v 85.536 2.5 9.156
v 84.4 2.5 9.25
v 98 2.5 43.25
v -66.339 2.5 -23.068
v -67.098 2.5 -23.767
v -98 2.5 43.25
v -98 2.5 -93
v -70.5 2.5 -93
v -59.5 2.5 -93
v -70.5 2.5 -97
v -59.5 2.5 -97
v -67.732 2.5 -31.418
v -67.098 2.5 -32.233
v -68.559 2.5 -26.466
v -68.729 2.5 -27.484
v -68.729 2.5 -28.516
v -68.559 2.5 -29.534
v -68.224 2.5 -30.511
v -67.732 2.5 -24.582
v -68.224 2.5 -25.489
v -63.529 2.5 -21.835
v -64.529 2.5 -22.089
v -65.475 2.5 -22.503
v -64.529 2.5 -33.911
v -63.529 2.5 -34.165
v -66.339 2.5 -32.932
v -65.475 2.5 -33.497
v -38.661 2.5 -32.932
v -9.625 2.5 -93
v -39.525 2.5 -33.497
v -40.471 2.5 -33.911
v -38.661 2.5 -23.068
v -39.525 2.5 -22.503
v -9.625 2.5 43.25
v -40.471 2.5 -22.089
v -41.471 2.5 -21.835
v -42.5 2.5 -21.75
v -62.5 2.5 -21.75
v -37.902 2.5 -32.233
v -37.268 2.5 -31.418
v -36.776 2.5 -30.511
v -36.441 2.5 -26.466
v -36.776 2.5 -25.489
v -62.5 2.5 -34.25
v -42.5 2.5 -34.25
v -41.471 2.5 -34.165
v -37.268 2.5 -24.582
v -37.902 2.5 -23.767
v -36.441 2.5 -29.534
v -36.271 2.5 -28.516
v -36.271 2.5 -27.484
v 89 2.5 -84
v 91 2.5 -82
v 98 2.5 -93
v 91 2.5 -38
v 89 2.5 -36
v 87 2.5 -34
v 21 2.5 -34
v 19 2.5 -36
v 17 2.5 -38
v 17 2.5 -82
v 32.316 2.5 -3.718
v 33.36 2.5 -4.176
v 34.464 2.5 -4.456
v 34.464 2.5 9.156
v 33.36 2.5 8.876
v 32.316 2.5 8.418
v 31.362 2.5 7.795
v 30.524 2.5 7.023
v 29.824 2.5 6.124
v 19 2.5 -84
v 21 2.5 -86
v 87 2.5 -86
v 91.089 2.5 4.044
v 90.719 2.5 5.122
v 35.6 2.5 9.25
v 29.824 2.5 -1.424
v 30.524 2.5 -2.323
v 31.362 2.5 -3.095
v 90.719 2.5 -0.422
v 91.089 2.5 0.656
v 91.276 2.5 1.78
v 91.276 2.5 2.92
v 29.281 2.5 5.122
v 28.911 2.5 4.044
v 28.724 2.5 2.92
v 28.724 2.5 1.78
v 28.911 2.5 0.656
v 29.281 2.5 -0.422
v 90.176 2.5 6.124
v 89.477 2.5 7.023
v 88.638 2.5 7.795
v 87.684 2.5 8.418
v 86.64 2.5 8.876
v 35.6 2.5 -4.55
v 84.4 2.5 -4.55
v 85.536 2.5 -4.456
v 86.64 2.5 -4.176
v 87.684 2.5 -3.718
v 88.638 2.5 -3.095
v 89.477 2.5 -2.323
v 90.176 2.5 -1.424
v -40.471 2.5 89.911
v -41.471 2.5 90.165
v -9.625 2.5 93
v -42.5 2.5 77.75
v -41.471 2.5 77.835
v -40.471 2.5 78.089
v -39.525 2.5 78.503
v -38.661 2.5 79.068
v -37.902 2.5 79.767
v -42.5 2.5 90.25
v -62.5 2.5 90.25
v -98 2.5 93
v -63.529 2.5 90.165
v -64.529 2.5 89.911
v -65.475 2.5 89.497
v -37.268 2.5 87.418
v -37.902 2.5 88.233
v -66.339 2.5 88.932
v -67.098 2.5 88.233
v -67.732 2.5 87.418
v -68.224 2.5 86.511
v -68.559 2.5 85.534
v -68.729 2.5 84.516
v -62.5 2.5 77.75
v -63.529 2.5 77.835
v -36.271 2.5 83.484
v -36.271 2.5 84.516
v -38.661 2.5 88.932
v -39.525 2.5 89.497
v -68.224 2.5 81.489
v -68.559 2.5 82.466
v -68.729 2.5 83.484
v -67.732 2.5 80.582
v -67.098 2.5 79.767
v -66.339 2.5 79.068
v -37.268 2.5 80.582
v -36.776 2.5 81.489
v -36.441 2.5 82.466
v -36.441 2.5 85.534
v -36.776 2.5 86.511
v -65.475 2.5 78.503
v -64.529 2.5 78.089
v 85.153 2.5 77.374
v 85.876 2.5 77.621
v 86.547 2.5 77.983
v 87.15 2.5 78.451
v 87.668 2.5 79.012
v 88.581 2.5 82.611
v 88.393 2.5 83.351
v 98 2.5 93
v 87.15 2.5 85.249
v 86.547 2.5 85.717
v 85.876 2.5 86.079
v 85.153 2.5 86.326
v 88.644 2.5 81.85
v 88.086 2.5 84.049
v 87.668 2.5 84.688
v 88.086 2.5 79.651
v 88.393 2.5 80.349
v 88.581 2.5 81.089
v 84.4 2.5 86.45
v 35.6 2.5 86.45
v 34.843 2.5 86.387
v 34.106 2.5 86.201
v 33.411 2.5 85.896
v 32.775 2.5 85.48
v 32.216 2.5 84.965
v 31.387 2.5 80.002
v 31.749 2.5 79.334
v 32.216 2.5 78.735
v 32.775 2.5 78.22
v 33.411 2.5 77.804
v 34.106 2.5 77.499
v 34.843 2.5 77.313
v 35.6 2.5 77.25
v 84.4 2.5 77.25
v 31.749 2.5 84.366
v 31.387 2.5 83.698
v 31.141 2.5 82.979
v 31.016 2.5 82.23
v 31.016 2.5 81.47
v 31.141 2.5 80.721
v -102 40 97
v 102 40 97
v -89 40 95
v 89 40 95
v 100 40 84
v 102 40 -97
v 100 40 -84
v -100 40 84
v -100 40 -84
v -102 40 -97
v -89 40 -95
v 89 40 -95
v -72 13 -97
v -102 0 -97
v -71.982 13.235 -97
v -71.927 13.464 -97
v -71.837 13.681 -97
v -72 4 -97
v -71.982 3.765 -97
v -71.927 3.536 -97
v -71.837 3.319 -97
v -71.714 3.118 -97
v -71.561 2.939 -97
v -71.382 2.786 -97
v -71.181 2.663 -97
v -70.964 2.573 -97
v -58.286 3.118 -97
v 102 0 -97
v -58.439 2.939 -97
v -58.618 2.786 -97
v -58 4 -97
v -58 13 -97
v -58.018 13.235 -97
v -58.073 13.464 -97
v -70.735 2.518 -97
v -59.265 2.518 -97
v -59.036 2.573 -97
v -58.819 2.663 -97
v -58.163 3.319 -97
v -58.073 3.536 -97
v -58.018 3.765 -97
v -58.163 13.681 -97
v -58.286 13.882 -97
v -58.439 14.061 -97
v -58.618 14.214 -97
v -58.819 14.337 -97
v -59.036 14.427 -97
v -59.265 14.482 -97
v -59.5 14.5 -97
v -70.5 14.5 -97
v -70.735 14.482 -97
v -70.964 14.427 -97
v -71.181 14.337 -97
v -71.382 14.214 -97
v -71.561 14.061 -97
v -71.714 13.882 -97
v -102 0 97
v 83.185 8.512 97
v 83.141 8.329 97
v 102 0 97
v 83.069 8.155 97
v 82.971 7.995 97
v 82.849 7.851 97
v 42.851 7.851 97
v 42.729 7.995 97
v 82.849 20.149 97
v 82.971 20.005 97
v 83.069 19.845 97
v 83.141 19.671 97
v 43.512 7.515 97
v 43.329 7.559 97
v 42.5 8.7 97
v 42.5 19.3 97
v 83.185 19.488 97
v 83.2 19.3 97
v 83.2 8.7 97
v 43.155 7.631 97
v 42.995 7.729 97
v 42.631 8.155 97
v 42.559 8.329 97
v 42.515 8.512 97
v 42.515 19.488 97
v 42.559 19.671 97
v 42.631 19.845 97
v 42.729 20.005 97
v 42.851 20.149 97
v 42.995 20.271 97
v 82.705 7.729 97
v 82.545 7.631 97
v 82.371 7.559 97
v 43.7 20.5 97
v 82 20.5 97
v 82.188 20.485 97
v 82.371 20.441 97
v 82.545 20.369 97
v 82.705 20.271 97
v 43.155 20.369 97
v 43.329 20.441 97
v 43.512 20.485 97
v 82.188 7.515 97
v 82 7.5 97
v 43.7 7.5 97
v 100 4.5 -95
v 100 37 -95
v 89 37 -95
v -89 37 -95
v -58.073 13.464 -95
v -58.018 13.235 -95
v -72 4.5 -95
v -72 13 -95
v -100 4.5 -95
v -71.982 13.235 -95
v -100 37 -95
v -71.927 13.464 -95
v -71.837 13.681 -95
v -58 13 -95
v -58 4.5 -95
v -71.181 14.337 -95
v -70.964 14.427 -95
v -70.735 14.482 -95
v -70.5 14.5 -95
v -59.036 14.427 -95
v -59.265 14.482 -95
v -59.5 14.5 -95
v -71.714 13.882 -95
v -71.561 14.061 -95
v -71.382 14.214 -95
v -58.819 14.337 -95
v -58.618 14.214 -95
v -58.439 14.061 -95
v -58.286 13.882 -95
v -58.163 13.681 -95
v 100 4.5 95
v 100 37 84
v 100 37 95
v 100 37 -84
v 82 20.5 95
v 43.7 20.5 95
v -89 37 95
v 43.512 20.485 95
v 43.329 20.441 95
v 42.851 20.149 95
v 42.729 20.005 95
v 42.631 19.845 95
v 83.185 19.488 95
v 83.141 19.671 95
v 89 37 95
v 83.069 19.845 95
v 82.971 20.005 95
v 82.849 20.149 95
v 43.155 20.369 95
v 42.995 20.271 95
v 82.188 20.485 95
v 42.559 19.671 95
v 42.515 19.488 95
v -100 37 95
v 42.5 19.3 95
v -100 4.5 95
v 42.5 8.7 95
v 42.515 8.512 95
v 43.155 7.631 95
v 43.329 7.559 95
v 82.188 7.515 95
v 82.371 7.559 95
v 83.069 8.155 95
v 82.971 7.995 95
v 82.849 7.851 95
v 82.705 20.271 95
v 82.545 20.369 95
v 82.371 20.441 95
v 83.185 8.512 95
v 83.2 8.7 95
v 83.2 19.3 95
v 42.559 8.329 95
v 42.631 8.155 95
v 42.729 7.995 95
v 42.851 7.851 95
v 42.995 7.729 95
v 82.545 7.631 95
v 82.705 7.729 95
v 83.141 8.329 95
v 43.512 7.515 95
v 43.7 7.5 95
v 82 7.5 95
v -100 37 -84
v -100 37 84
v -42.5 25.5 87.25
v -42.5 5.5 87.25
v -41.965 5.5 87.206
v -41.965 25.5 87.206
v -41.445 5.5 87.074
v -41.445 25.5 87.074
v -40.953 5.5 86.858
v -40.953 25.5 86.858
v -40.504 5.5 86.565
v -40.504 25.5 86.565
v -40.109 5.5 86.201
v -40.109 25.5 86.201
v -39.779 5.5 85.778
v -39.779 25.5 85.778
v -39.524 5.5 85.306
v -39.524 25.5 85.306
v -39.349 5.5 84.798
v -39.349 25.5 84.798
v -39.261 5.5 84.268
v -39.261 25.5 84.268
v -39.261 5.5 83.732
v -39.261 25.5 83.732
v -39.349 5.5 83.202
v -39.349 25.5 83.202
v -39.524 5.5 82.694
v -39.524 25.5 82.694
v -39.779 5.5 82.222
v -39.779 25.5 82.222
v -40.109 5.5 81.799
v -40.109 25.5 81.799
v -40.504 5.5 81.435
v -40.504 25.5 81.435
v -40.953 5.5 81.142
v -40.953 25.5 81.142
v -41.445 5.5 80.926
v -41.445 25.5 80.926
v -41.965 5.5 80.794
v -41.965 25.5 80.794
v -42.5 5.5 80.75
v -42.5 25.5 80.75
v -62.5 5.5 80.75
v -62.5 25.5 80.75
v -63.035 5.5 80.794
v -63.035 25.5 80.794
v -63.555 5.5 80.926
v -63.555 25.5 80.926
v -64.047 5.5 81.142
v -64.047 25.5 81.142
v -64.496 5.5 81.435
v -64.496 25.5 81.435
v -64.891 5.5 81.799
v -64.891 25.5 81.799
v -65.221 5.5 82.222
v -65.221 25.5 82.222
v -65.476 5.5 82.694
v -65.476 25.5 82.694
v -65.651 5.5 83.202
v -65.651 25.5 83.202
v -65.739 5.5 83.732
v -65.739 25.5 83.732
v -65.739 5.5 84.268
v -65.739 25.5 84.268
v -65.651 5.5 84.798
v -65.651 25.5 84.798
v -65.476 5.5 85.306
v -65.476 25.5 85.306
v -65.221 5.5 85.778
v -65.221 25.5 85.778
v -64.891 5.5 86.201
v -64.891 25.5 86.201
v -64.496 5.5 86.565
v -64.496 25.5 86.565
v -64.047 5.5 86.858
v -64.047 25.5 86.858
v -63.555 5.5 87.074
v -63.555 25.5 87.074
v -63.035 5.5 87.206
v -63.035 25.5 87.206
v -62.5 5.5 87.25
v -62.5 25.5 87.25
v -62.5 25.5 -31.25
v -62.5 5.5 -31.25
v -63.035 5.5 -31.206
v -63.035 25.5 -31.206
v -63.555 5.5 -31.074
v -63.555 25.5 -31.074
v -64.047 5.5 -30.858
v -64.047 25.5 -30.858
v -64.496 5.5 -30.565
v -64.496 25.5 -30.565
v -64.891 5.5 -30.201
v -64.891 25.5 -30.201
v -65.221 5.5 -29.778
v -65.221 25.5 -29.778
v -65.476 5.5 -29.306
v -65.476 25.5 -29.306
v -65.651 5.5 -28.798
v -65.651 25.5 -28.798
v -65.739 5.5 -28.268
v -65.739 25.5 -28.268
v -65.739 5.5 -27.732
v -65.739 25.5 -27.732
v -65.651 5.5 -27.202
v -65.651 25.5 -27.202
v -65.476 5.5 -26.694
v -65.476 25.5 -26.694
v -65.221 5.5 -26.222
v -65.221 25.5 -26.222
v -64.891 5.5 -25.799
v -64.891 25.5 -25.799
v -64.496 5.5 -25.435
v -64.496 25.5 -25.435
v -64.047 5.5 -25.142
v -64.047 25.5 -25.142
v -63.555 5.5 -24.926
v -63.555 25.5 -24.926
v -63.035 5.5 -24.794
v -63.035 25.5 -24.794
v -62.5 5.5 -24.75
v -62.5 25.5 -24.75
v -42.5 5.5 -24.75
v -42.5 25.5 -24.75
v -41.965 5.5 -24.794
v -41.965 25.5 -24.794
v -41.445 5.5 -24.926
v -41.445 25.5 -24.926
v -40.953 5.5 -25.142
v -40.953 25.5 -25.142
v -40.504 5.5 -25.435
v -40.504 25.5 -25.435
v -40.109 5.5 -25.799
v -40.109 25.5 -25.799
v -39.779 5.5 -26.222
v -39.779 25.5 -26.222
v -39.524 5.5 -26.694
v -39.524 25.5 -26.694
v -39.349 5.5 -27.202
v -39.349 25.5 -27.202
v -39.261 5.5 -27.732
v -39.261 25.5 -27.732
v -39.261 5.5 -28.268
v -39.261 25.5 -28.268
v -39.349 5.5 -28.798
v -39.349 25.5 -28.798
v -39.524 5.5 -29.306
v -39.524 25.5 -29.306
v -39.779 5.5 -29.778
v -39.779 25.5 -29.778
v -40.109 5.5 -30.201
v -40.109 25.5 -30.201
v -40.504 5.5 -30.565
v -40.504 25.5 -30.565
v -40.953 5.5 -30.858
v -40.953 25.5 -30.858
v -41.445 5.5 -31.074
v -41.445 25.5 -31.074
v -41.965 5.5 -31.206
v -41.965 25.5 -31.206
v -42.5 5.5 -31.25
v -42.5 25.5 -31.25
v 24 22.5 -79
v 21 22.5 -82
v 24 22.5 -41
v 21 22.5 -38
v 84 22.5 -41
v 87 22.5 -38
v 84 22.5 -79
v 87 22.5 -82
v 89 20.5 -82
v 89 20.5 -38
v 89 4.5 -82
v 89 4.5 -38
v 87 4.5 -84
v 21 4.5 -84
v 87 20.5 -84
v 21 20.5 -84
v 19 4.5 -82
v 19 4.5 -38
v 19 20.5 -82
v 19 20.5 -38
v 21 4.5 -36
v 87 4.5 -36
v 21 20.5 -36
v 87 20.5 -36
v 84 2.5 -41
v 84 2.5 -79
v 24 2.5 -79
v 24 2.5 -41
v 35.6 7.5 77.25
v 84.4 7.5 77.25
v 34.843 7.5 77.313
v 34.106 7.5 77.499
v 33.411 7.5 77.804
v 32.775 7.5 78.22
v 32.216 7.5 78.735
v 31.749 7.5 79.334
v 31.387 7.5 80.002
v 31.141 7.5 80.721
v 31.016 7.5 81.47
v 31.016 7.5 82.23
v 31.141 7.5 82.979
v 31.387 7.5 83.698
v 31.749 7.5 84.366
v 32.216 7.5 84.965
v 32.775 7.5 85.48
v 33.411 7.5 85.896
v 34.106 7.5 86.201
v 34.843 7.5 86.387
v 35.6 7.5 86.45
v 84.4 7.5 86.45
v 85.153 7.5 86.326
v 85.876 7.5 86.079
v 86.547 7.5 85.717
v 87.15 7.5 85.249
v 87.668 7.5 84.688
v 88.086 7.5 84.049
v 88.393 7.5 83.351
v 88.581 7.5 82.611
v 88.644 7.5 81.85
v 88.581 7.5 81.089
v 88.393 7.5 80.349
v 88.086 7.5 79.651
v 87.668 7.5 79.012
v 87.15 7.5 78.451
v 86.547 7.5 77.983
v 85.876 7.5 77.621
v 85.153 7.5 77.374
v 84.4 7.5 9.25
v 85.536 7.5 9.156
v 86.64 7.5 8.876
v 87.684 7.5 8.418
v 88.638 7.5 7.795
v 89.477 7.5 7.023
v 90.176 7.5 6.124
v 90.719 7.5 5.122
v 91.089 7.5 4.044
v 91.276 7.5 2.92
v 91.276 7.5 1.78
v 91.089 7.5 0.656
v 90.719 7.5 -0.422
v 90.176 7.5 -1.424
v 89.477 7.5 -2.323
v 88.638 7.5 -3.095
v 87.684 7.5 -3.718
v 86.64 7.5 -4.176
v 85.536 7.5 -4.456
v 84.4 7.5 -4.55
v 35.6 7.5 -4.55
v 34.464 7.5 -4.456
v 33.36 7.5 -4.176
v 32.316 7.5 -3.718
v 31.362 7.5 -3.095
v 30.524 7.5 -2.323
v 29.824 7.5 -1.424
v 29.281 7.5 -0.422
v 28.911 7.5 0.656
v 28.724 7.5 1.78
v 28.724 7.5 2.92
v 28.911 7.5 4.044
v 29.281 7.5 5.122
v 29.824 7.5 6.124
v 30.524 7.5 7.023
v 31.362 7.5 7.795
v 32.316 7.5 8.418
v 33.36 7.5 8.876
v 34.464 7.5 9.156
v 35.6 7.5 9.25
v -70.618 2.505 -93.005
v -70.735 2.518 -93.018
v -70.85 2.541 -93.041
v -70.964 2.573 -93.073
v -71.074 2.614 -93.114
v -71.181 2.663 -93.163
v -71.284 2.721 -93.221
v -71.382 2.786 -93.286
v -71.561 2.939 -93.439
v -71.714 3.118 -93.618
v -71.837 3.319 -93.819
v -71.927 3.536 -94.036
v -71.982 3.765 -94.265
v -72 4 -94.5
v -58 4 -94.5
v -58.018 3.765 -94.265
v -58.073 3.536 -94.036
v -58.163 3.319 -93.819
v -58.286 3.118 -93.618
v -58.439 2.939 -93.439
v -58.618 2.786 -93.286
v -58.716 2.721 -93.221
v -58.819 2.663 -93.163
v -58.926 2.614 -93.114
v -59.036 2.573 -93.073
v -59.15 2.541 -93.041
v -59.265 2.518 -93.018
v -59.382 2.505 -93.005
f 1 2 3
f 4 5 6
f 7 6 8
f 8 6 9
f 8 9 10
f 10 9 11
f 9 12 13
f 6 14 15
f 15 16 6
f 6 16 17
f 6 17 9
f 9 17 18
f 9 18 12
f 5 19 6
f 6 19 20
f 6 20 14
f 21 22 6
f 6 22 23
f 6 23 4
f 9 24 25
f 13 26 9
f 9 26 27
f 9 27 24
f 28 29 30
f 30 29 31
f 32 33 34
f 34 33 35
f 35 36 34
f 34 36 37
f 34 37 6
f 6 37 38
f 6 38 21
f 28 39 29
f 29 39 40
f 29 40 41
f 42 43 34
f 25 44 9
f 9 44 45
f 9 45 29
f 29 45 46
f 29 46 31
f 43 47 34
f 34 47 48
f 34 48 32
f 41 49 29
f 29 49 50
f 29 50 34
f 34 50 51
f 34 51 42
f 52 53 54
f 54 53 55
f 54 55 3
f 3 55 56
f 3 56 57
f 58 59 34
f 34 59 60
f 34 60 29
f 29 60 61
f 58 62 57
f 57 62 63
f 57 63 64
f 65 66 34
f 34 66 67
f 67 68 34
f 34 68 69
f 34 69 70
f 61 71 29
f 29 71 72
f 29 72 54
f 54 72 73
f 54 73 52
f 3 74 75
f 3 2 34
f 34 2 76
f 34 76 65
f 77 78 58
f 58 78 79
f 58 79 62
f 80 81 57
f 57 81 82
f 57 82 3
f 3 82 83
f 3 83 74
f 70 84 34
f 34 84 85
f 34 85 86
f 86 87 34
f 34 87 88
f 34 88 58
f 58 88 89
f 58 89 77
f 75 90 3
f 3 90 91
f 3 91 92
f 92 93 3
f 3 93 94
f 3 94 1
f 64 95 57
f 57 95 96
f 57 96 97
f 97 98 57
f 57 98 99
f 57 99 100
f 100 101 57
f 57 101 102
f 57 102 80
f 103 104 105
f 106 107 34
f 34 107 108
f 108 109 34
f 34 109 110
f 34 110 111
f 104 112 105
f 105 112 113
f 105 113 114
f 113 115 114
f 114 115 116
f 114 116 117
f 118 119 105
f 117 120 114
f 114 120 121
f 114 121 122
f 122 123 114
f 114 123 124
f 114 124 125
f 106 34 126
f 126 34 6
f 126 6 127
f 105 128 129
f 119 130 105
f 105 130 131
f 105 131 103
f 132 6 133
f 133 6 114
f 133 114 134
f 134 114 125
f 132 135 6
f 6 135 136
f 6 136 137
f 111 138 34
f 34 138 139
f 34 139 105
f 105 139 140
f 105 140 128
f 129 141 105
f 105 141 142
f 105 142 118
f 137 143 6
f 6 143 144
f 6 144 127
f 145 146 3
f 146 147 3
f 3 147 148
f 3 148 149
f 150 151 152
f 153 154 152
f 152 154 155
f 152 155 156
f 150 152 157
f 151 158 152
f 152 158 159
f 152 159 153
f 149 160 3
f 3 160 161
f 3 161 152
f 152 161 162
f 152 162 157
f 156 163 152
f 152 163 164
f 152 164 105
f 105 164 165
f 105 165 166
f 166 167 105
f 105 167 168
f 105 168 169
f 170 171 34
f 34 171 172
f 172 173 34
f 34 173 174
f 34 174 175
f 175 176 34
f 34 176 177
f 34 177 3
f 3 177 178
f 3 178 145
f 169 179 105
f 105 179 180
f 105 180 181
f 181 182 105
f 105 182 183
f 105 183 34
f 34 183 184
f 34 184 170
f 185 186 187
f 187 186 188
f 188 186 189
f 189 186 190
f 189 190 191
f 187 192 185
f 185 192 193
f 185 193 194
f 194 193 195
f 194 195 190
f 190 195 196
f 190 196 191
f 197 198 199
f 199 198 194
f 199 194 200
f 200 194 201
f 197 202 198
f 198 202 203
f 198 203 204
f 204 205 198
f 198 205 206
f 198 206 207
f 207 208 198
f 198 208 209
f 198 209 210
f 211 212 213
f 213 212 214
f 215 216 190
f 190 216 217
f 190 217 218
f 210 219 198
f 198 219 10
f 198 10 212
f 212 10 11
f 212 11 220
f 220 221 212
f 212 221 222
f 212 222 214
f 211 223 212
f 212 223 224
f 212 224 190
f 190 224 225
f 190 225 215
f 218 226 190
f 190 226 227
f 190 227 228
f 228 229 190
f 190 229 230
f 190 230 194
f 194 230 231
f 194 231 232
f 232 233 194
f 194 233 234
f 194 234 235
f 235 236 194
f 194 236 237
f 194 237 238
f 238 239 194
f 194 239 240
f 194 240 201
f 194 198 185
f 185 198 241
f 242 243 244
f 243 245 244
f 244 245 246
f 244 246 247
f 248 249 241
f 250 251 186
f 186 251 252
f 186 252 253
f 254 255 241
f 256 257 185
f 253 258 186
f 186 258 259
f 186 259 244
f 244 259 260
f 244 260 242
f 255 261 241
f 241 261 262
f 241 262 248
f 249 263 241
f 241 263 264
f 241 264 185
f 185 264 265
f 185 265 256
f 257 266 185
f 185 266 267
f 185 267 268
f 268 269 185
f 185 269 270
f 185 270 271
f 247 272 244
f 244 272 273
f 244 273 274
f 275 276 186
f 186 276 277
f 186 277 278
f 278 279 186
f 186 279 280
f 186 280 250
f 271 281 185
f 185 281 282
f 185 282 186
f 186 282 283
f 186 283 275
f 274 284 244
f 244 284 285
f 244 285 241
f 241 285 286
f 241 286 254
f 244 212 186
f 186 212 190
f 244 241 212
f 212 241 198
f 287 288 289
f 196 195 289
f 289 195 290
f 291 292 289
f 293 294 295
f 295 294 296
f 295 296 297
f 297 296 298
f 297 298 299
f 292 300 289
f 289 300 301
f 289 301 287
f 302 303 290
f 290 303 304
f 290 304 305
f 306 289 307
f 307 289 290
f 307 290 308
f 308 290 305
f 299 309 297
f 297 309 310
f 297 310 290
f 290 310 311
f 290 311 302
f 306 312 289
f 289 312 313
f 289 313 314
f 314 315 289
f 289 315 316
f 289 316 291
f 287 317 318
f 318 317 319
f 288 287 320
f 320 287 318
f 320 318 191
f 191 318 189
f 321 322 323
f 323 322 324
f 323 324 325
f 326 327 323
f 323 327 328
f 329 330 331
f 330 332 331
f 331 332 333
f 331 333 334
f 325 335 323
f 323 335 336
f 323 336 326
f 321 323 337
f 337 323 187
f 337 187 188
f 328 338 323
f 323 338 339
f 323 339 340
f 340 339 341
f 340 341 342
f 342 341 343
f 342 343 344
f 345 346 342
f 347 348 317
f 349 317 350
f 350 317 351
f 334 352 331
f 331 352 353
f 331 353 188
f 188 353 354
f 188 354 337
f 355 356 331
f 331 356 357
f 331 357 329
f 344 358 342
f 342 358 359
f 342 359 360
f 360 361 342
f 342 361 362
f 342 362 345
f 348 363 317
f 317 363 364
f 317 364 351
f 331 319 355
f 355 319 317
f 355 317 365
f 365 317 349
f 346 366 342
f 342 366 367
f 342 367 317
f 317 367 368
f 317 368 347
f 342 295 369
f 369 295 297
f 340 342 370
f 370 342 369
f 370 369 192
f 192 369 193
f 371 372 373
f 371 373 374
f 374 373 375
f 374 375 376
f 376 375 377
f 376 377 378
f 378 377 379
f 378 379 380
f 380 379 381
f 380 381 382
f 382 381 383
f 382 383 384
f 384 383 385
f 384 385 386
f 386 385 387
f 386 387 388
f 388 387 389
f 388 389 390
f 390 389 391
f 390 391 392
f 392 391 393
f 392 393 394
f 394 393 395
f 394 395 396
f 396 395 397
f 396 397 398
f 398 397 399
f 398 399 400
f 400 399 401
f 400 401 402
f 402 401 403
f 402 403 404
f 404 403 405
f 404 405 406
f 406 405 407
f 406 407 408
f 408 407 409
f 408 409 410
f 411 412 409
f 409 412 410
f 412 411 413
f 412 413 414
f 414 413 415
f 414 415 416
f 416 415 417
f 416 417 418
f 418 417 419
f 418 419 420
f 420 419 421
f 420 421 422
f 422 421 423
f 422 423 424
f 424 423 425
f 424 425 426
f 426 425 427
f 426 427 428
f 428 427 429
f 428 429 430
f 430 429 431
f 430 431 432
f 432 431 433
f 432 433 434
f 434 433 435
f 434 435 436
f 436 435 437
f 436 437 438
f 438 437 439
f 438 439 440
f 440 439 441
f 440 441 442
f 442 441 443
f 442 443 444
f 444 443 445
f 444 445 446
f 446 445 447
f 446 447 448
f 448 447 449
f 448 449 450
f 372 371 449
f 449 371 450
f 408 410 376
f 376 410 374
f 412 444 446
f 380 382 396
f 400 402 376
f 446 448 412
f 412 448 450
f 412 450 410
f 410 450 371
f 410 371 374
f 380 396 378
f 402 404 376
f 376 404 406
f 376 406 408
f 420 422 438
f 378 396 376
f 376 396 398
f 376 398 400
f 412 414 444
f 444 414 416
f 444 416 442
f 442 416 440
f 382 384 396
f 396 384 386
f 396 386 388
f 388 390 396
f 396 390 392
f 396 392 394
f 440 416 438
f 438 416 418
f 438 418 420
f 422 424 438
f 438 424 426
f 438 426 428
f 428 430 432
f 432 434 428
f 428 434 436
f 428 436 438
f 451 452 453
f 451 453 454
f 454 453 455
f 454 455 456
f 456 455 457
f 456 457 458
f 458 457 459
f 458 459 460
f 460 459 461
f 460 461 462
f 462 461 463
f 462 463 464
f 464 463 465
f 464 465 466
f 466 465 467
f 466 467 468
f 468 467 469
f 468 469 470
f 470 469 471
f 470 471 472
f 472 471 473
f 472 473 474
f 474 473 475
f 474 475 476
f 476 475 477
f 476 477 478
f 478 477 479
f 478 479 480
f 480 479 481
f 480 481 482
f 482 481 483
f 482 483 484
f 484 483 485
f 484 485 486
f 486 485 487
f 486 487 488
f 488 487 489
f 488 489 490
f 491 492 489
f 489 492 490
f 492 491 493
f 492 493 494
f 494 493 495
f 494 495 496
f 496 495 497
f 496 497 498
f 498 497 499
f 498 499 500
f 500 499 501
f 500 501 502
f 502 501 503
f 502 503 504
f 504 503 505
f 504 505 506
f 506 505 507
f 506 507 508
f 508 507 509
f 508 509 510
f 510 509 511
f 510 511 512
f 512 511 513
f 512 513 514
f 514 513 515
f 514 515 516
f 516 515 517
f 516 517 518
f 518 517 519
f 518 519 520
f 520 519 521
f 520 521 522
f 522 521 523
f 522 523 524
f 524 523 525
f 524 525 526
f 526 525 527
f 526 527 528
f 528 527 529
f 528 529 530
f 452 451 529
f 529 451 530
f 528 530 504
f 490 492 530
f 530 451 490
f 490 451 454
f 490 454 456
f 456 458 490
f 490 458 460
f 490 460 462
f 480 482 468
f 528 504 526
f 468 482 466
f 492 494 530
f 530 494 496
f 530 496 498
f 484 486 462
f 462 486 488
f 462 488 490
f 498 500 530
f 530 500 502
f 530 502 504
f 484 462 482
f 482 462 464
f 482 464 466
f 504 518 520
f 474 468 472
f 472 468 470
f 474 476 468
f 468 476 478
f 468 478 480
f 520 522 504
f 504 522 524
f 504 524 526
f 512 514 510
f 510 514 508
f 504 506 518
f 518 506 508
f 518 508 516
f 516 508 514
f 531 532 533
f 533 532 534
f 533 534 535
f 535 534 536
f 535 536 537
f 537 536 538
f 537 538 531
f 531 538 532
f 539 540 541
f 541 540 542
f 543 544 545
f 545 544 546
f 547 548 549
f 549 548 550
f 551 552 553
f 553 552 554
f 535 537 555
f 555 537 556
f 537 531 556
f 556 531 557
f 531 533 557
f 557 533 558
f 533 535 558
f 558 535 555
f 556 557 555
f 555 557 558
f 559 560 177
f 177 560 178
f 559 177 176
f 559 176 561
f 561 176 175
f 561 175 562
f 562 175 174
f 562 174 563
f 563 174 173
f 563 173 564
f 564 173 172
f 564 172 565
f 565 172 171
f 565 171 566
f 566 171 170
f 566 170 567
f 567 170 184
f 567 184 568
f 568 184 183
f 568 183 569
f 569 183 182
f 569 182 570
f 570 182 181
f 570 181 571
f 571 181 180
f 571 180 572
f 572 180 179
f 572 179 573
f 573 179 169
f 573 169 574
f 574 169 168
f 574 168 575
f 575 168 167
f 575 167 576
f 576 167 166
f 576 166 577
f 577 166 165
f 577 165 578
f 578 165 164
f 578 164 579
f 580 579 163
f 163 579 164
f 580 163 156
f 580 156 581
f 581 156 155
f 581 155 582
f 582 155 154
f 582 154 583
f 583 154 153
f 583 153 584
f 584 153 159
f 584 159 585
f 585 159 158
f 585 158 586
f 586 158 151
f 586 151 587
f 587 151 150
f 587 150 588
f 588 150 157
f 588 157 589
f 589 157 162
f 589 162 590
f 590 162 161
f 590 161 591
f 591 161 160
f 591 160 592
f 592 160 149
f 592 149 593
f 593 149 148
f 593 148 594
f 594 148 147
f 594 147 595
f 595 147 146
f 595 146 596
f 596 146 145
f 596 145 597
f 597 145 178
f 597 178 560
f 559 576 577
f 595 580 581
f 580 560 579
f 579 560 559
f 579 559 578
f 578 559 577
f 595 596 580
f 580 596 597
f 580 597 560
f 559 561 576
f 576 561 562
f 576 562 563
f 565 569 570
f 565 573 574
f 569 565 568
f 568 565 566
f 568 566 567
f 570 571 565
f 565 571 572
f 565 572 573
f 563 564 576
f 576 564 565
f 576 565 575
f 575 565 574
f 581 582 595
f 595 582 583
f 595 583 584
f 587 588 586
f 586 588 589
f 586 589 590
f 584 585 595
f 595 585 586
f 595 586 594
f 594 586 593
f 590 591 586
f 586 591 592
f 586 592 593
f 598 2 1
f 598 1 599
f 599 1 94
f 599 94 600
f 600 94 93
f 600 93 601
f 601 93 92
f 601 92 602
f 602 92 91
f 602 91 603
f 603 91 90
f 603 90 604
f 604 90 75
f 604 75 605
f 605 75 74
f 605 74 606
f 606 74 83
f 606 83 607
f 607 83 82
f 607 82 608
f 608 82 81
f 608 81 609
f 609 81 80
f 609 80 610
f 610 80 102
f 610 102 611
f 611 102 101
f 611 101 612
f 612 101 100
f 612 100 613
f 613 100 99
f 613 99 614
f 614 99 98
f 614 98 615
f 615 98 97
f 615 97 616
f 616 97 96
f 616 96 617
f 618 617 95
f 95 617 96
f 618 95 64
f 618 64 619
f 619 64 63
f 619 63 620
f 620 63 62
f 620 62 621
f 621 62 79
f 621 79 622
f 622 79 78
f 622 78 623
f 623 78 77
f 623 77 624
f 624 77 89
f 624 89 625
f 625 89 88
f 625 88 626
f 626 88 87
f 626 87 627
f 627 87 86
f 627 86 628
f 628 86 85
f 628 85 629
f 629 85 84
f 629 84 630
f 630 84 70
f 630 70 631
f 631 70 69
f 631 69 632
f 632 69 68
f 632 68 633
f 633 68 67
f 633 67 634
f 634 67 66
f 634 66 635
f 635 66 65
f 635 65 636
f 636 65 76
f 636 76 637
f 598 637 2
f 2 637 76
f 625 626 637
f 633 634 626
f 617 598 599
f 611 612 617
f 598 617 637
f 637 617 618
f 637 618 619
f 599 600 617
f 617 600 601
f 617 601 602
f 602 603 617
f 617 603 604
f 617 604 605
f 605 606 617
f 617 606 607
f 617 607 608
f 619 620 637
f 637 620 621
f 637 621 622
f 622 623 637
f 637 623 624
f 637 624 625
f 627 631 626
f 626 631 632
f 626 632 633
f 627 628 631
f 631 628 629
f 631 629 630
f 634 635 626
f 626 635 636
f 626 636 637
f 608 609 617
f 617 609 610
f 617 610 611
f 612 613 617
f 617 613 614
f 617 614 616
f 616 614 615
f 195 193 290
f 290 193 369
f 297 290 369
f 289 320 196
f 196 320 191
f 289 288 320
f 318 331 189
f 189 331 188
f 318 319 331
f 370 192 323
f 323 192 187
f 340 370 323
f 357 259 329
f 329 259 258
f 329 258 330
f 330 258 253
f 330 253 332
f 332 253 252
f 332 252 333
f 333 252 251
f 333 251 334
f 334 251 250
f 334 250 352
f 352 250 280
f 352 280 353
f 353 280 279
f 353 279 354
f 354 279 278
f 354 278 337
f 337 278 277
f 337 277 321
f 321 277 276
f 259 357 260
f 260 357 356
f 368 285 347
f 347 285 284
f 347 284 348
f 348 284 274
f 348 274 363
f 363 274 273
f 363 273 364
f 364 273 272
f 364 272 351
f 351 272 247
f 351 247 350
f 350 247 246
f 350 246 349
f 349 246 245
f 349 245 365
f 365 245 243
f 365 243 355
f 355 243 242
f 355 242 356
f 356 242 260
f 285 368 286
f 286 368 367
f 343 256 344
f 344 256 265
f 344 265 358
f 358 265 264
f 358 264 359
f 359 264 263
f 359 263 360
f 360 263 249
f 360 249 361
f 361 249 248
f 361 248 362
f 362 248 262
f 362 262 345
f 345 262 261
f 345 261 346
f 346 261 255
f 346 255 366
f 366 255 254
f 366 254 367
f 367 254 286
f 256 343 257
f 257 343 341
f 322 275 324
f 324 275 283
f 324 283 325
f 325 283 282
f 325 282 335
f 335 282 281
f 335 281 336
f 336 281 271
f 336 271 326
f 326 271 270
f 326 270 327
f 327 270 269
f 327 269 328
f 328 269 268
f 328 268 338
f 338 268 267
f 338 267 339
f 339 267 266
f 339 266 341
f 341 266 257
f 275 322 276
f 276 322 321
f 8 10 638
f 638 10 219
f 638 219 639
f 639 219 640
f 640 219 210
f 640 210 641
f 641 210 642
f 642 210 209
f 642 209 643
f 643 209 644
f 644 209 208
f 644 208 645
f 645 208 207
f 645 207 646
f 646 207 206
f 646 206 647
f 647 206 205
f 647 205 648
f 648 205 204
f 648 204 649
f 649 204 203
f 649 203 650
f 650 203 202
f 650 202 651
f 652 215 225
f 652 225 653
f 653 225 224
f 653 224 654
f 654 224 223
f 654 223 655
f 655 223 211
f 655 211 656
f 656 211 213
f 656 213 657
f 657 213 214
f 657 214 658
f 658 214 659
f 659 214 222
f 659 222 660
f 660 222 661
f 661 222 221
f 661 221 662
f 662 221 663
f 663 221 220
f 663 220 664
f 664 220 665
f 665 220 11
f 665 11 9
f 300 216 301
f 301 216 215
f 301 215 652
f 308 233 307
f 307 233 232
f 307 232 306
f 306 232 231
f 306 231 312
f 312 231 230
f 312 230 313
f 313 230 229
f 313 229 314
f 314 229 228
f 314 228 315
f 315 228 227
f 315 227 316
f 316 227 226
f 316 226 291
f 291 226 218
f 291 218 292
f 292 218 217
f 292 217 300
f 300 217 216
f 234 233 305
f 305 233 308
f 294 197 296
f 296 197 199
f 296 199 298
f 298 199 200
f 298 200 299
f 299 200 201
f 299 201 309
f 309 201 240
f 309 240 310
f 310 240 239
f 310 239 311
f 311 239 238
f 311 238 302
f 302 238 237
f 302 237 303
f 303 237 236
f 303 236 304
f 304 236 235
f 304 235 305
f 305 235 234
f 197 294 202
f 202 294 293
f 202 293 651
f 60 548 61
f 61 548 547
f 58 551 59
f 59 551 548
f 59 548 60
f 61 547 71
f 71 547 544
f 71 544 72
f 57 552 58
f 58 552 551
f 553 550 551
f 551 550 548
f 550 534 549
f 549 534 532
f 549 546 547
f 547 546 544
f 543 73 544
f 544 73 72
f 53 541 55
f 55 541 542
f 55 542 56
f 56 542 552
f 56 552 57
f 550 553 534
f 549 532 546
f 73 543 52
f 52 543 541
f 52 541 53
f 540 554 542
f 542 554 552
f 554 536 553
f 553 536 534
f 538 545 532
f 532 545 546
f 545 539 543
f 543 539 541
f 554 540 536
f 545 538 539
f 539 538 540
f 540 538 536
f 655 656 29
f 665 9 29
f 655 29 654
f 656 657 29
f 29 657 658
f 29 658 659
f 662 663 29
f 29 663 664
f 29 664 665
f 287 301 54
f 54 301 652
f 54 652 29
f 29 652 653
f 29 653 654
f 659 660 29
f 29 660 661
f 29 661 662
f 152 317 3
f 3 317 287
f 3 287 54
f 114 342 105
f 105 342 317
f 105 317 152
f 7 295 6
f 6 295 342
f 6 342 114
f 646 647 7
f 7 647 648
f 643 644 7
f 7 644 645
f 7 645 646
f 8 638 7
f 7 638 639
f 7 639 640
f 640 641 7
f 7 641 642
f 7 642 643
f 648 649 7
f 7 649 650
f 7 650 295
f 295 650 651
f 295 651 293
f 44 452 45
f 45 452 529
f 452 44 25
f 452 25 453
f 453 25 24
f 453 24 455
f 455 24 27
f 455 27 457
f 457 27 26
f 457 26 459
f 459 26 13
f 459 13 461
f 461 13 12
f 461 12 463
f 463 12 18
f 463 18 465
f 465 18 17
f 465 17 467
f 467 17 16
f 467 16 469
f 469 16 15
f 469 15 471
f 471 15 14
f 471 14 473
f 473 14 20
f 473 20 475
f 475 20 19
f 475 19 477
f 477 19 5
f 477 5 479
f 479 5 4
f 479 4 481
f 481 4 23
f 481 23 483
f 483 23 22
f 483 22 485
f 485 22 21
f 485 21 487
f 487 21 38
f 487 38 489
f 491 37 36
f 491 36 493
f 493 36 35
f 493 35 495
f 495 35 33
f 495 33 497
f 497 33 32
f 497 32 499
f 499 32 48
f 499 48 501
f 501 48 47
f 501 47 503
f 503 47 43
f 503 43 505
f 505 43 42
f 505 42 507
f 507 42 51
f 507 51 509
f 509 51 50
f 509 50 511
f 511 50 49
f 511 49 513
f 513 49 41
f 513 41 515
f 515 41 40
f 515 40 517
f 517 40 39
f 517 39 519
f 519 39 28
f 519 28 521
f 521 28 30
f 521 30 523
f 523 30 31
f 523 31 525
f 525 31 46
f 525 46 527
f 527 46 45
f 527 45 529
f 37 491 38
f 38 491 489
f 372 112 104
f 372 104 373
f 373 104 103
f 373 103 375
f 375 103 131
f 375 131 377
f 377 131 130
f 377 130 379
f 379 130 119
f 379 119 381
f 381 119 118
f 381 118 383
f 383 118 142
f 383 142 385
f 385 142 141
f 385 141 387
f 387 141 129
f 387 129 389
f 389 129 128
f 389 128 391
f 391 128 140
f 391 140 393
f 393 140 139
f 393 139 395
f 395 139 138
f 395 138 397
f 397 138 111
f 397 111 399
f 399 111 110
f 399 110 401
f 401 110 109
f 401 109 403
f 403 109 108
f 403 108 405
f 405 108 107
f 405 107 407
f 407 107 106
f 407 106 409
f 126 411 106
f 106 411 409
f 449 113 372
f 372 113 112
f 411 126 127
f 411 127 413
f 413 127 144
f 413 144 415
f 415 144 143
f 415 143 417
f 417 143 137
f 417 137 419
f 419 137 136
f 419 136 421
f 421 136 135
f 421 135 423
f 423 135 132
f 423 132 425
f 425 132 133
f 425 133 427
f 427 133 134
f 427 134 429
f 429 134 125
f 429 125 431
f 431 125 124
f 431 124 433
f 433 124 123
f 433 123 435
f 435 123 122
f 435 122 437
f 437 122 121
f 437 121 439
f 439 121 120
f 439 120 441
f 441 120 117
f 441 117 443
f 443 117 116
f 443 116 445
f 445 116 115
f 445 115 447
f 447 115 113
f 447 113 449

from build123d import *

# Parameters (mm, degrees)
IZIM1_W                     = 204
IZIM1_H                     = 194
Y_KSEKLIK_EKSTR_ZYON2_DEPTH = 40
IZIM3_W                     = 200
IZIM3_H                     = 190
KES_EKSTR_ZYON2_DEPTH       = 37.5
Y_KSEKLIK_EKSTR_ZYON3_DEPTH = 23
IZIM6_W                     = 70
IZIM6_H                     = 48
IZIM6_W_2                   = 60
IZIM6_H_2                   = 38
Y_KSEKLIK_EKSTR_ZYON4_DEPTH = 20
Y_KSEKLIK_EKSTR_ZYON7_DEPTH = 5
Y_KSEKLIK_EKSTR_ZYON8_DEPTH = 3
KES_EKSTR_ZYON5_DEPTH       = 3
KES_EKSTR_ZYON7_DEPTH       = 3
PAH1_SIZE                   = 2
PAH2_SIZE                   = 3


with BuildPart() as part:
    # Çizim1 → Yükseklik-Ekstrüzyon2 (new body)
    with BuildSketch(Plane(origin=(0, 0, 0), x_dir=(1, 0, 0), z_dir=(0, 1, 0))):
        Rectangle(IZIM1_W, IZIM1_H)
    extrude(amount=Y_KSEKLIK_EKSTR_ZYON2_DEPTH)

    # Çizim3 → Kes-Ekstrüzyon2 (cut)
    with BuildSketch(Plane(origin=(0, 40, 0), x_dir=(1, 0, 0), z_dir=(0, 1, 0))):
        Rectangle(IZIM3_W, IZIM3_H)
    extrude(amount=-KES_EKSTR_ZYON2_DEPTH, mode=Mode.SUBTRACT)

    # Çizim4 → Yükseklik-Ekstrüzyon3 (add)
    with BuildSketch(Plane(origin=(0, 2.5, 0), x_dir=(1, 0, 0), z_dir=(0, 1, 0))):
        with BuildLine():
            Line((-62.5, 24.75), (-42.5, 24.75))
            ThreePointArc((-42.5, 24.75), (-39.25, 28), (-42.5, 31.25))
            Line((-42.5, 31.25), (-62.5, 31.25))
            ThreePointArc((-62.5, 31.25), (-65.75, 28), (-62.5, 24.75))
        make_face()
        with BuildLine():
            Line((-62.5, -87.25), (-42.5, -87.25))
            ThreePointArc((-42.5, -87.25), (-39.25, -84), (-42.5, -80.75))
            Line((-42.5, -80.75), (-62.5, -80.75))
            ThreePointArc((-62.5, -80.75), (-65.75, -84), (-62.5, -87.25))
        make_face()
    extrude(amount=Y_KSEKLIK_EKSTR_ZYON3_DEPTH)

    # Çizim6 → Yükseklik-Ekstrüzyon4 (add)
    with BuildSketch(Plane(origin=(0, 2.5, 0), x_dir=(1, 0, 0), z_dir=(0, 1, 0))):
        with Locations((54, 60)):
            Rectangle(IZIM6_W, IZIM6_H)
        with Locations((54, 60)):
            Rectangle(IZIM6_W_2, IZIM6_H_2, mode=Mode.SUBTRACT)
    extrude(amount=Y_KSEKLIK_EKSTR_ZYON4_DEPTH)

    # Çizim7 → Yükseklik-Ekstrüzyon7 (add)
    with BuildSketch(Plane(origin=(0, 2.5, 0), x_dir=(1, 0, 0), z_dir=(0, 1, 0))):
        with BuildLine():
            Line((35.6, -9.25), (84.4, -9.25))
            ThreePointArc((84.4, -9.25), (91.3, -2.35), (84.4, 4.55))
            Line((84.4, 4.55), (35.6, 4.55))
            ThreePointArc((35.6, 4.55), (28.7, -2.35), (35.6, -9.25))
        make_face()
        with BuildLine():
            Line((35.6, -77.25), (84.4, -77.25))
            ThreePointArc((84.4, -77.25), (88.64386759, -81.85), (84.4, -86.45))
            Line((84.4, -86.45), (35.6, -86.45))
            ThreePointArc((35.6, -86.45), (31, -81.85), (35.6, -77.25))
        make_face()
    extrude(amount=Y_KSEKLIK_EKSTR_ZYON7_DEPTH)

    # Çizim8 → Yükseklik-Ekstrüzyon8 (add)
    with BuildSketch(Plane(origin=(0, 40, 0), x_dir=(1, 0, 0), z_dir=(0, 1, 0))):
        Polygon((-102, 97), (-102, 82), (-87, 97), align=None)
        Polygon((102, 97), (87, 97), (102, 82), align=None)
        Polygon((102, -97), (102, -82), (87, -97), align=None)
        Polygon((-102, -97), (-87, -97), (-102, -82), align=None)
    extrude(amount=-Y_KSEKLIK_EKSTR_ZYON8_DEPTH)

    # Çizim9 → Kes-Ekstrüzyon5 (cut)
    with BuildSketch(Plane.XY.offset(97)):
        with BuildLine():
            Line((43.7, 7.5), (82, 7.5))
            ThreePointArc((82, 7.5), (82.848528137, 7.851471863), (83.2, 8.7))
            Line((83.2, 8.7), (83.2, 19.3))
            ThreePointArc((83.2, 19.3), (82.848528137, 20.148528137), (82, 20.5))
            Line((82, 20.5), (43.7, 20.5))
            ThreePointArc((43.7, 20.5), (42.851471863, 20.148528137), (42.5, 19.3))
            Line((42.5, 19.3), (42.5, 8.7))
            ThreePointArc((42.5, 8.7), (42.851471863, 7.851471863), (43.7, 7.5))
        make_face()
    extrude(amount=-KES_EKSTR_ZYON5_DEPTH, mode=Mode.SUBTRACT)

    # Çizim11 → Kes-Ekstrüzyon7 (cut)
    with BuildSketch(Plane(origin=(0, 0, -97), x_dir=(-1, 0, 0), z_dir=(0, 0, -1))):
        with BuildLine():
            Line((59.5, 2.5), (70.5, 2.5))
            ThreePointArc((70.5, 2.5), (71.560660172, 2.939339828), (72, 4))
            Line((72, 4), (72, 13))
            ThreePointArc((72, 13), (71.560660172, 14.060660172), (70.5, 14.5))
            Line((70.5, 14.5), (59.5, 14.5))
            ThreePointArc((59.5, 14.5), (58.439339828, 14.060660172), (58, 13))
            Line((58, 13), (58, 4))
            ThreePointArc((58, 4), (58.439339828, 2.939339828), (59.5, 2.5))
        make_face()
    extrude(amount=-KES_EKSTR_ZYON7_DEPTH, mode=Mode.SUBTRACT)

    # Pah1
    pah1_edges = [part.edges().sort_by_distance(p)[0] for p in [
        (0, 2.5, 95),
        (-100, 2.5, 0),
        (-85.25, 2.5, -95),
        (100, 2.5, 0),
        (20.25, 2.5, -95),
        (89, 22.5, -60),
        (54, 22.5, -84),
        (19, 22.5, -60),
        (54, 22.5, -36),
        (89, 2.5, -60),
        (89, 12.5, -36),
        (54, 2.5, -84),
        (89, 12.5, -84),
        (19, 2.5, -60),
        (19, 12.5, -84),
        (54, 2.5, -36),
        (19, 12.5, -36),
    ]]
    chamfer(pah1_edges, length=PAH1_SIZE)

    # Pah2
    pah2_edges = [part.edges().sort_by_distance(p)[0] for p in [
        (-39.25, 2.5, 84),
        (-52.5, 2.5, 80.75),
        (-65.75, 2.5, 84),
        (-52.5, 2.5, 87.25),
        (-65.75, 2.5, -28),
        (-52.5, 2.5, -24.75),
        (-39.25, 2.5, -28),
        (-52.5, 2.5, -31.25),
    ]]
    chamfer(pah2_edges, length=PAH2_SIZE)


solid = part.part
